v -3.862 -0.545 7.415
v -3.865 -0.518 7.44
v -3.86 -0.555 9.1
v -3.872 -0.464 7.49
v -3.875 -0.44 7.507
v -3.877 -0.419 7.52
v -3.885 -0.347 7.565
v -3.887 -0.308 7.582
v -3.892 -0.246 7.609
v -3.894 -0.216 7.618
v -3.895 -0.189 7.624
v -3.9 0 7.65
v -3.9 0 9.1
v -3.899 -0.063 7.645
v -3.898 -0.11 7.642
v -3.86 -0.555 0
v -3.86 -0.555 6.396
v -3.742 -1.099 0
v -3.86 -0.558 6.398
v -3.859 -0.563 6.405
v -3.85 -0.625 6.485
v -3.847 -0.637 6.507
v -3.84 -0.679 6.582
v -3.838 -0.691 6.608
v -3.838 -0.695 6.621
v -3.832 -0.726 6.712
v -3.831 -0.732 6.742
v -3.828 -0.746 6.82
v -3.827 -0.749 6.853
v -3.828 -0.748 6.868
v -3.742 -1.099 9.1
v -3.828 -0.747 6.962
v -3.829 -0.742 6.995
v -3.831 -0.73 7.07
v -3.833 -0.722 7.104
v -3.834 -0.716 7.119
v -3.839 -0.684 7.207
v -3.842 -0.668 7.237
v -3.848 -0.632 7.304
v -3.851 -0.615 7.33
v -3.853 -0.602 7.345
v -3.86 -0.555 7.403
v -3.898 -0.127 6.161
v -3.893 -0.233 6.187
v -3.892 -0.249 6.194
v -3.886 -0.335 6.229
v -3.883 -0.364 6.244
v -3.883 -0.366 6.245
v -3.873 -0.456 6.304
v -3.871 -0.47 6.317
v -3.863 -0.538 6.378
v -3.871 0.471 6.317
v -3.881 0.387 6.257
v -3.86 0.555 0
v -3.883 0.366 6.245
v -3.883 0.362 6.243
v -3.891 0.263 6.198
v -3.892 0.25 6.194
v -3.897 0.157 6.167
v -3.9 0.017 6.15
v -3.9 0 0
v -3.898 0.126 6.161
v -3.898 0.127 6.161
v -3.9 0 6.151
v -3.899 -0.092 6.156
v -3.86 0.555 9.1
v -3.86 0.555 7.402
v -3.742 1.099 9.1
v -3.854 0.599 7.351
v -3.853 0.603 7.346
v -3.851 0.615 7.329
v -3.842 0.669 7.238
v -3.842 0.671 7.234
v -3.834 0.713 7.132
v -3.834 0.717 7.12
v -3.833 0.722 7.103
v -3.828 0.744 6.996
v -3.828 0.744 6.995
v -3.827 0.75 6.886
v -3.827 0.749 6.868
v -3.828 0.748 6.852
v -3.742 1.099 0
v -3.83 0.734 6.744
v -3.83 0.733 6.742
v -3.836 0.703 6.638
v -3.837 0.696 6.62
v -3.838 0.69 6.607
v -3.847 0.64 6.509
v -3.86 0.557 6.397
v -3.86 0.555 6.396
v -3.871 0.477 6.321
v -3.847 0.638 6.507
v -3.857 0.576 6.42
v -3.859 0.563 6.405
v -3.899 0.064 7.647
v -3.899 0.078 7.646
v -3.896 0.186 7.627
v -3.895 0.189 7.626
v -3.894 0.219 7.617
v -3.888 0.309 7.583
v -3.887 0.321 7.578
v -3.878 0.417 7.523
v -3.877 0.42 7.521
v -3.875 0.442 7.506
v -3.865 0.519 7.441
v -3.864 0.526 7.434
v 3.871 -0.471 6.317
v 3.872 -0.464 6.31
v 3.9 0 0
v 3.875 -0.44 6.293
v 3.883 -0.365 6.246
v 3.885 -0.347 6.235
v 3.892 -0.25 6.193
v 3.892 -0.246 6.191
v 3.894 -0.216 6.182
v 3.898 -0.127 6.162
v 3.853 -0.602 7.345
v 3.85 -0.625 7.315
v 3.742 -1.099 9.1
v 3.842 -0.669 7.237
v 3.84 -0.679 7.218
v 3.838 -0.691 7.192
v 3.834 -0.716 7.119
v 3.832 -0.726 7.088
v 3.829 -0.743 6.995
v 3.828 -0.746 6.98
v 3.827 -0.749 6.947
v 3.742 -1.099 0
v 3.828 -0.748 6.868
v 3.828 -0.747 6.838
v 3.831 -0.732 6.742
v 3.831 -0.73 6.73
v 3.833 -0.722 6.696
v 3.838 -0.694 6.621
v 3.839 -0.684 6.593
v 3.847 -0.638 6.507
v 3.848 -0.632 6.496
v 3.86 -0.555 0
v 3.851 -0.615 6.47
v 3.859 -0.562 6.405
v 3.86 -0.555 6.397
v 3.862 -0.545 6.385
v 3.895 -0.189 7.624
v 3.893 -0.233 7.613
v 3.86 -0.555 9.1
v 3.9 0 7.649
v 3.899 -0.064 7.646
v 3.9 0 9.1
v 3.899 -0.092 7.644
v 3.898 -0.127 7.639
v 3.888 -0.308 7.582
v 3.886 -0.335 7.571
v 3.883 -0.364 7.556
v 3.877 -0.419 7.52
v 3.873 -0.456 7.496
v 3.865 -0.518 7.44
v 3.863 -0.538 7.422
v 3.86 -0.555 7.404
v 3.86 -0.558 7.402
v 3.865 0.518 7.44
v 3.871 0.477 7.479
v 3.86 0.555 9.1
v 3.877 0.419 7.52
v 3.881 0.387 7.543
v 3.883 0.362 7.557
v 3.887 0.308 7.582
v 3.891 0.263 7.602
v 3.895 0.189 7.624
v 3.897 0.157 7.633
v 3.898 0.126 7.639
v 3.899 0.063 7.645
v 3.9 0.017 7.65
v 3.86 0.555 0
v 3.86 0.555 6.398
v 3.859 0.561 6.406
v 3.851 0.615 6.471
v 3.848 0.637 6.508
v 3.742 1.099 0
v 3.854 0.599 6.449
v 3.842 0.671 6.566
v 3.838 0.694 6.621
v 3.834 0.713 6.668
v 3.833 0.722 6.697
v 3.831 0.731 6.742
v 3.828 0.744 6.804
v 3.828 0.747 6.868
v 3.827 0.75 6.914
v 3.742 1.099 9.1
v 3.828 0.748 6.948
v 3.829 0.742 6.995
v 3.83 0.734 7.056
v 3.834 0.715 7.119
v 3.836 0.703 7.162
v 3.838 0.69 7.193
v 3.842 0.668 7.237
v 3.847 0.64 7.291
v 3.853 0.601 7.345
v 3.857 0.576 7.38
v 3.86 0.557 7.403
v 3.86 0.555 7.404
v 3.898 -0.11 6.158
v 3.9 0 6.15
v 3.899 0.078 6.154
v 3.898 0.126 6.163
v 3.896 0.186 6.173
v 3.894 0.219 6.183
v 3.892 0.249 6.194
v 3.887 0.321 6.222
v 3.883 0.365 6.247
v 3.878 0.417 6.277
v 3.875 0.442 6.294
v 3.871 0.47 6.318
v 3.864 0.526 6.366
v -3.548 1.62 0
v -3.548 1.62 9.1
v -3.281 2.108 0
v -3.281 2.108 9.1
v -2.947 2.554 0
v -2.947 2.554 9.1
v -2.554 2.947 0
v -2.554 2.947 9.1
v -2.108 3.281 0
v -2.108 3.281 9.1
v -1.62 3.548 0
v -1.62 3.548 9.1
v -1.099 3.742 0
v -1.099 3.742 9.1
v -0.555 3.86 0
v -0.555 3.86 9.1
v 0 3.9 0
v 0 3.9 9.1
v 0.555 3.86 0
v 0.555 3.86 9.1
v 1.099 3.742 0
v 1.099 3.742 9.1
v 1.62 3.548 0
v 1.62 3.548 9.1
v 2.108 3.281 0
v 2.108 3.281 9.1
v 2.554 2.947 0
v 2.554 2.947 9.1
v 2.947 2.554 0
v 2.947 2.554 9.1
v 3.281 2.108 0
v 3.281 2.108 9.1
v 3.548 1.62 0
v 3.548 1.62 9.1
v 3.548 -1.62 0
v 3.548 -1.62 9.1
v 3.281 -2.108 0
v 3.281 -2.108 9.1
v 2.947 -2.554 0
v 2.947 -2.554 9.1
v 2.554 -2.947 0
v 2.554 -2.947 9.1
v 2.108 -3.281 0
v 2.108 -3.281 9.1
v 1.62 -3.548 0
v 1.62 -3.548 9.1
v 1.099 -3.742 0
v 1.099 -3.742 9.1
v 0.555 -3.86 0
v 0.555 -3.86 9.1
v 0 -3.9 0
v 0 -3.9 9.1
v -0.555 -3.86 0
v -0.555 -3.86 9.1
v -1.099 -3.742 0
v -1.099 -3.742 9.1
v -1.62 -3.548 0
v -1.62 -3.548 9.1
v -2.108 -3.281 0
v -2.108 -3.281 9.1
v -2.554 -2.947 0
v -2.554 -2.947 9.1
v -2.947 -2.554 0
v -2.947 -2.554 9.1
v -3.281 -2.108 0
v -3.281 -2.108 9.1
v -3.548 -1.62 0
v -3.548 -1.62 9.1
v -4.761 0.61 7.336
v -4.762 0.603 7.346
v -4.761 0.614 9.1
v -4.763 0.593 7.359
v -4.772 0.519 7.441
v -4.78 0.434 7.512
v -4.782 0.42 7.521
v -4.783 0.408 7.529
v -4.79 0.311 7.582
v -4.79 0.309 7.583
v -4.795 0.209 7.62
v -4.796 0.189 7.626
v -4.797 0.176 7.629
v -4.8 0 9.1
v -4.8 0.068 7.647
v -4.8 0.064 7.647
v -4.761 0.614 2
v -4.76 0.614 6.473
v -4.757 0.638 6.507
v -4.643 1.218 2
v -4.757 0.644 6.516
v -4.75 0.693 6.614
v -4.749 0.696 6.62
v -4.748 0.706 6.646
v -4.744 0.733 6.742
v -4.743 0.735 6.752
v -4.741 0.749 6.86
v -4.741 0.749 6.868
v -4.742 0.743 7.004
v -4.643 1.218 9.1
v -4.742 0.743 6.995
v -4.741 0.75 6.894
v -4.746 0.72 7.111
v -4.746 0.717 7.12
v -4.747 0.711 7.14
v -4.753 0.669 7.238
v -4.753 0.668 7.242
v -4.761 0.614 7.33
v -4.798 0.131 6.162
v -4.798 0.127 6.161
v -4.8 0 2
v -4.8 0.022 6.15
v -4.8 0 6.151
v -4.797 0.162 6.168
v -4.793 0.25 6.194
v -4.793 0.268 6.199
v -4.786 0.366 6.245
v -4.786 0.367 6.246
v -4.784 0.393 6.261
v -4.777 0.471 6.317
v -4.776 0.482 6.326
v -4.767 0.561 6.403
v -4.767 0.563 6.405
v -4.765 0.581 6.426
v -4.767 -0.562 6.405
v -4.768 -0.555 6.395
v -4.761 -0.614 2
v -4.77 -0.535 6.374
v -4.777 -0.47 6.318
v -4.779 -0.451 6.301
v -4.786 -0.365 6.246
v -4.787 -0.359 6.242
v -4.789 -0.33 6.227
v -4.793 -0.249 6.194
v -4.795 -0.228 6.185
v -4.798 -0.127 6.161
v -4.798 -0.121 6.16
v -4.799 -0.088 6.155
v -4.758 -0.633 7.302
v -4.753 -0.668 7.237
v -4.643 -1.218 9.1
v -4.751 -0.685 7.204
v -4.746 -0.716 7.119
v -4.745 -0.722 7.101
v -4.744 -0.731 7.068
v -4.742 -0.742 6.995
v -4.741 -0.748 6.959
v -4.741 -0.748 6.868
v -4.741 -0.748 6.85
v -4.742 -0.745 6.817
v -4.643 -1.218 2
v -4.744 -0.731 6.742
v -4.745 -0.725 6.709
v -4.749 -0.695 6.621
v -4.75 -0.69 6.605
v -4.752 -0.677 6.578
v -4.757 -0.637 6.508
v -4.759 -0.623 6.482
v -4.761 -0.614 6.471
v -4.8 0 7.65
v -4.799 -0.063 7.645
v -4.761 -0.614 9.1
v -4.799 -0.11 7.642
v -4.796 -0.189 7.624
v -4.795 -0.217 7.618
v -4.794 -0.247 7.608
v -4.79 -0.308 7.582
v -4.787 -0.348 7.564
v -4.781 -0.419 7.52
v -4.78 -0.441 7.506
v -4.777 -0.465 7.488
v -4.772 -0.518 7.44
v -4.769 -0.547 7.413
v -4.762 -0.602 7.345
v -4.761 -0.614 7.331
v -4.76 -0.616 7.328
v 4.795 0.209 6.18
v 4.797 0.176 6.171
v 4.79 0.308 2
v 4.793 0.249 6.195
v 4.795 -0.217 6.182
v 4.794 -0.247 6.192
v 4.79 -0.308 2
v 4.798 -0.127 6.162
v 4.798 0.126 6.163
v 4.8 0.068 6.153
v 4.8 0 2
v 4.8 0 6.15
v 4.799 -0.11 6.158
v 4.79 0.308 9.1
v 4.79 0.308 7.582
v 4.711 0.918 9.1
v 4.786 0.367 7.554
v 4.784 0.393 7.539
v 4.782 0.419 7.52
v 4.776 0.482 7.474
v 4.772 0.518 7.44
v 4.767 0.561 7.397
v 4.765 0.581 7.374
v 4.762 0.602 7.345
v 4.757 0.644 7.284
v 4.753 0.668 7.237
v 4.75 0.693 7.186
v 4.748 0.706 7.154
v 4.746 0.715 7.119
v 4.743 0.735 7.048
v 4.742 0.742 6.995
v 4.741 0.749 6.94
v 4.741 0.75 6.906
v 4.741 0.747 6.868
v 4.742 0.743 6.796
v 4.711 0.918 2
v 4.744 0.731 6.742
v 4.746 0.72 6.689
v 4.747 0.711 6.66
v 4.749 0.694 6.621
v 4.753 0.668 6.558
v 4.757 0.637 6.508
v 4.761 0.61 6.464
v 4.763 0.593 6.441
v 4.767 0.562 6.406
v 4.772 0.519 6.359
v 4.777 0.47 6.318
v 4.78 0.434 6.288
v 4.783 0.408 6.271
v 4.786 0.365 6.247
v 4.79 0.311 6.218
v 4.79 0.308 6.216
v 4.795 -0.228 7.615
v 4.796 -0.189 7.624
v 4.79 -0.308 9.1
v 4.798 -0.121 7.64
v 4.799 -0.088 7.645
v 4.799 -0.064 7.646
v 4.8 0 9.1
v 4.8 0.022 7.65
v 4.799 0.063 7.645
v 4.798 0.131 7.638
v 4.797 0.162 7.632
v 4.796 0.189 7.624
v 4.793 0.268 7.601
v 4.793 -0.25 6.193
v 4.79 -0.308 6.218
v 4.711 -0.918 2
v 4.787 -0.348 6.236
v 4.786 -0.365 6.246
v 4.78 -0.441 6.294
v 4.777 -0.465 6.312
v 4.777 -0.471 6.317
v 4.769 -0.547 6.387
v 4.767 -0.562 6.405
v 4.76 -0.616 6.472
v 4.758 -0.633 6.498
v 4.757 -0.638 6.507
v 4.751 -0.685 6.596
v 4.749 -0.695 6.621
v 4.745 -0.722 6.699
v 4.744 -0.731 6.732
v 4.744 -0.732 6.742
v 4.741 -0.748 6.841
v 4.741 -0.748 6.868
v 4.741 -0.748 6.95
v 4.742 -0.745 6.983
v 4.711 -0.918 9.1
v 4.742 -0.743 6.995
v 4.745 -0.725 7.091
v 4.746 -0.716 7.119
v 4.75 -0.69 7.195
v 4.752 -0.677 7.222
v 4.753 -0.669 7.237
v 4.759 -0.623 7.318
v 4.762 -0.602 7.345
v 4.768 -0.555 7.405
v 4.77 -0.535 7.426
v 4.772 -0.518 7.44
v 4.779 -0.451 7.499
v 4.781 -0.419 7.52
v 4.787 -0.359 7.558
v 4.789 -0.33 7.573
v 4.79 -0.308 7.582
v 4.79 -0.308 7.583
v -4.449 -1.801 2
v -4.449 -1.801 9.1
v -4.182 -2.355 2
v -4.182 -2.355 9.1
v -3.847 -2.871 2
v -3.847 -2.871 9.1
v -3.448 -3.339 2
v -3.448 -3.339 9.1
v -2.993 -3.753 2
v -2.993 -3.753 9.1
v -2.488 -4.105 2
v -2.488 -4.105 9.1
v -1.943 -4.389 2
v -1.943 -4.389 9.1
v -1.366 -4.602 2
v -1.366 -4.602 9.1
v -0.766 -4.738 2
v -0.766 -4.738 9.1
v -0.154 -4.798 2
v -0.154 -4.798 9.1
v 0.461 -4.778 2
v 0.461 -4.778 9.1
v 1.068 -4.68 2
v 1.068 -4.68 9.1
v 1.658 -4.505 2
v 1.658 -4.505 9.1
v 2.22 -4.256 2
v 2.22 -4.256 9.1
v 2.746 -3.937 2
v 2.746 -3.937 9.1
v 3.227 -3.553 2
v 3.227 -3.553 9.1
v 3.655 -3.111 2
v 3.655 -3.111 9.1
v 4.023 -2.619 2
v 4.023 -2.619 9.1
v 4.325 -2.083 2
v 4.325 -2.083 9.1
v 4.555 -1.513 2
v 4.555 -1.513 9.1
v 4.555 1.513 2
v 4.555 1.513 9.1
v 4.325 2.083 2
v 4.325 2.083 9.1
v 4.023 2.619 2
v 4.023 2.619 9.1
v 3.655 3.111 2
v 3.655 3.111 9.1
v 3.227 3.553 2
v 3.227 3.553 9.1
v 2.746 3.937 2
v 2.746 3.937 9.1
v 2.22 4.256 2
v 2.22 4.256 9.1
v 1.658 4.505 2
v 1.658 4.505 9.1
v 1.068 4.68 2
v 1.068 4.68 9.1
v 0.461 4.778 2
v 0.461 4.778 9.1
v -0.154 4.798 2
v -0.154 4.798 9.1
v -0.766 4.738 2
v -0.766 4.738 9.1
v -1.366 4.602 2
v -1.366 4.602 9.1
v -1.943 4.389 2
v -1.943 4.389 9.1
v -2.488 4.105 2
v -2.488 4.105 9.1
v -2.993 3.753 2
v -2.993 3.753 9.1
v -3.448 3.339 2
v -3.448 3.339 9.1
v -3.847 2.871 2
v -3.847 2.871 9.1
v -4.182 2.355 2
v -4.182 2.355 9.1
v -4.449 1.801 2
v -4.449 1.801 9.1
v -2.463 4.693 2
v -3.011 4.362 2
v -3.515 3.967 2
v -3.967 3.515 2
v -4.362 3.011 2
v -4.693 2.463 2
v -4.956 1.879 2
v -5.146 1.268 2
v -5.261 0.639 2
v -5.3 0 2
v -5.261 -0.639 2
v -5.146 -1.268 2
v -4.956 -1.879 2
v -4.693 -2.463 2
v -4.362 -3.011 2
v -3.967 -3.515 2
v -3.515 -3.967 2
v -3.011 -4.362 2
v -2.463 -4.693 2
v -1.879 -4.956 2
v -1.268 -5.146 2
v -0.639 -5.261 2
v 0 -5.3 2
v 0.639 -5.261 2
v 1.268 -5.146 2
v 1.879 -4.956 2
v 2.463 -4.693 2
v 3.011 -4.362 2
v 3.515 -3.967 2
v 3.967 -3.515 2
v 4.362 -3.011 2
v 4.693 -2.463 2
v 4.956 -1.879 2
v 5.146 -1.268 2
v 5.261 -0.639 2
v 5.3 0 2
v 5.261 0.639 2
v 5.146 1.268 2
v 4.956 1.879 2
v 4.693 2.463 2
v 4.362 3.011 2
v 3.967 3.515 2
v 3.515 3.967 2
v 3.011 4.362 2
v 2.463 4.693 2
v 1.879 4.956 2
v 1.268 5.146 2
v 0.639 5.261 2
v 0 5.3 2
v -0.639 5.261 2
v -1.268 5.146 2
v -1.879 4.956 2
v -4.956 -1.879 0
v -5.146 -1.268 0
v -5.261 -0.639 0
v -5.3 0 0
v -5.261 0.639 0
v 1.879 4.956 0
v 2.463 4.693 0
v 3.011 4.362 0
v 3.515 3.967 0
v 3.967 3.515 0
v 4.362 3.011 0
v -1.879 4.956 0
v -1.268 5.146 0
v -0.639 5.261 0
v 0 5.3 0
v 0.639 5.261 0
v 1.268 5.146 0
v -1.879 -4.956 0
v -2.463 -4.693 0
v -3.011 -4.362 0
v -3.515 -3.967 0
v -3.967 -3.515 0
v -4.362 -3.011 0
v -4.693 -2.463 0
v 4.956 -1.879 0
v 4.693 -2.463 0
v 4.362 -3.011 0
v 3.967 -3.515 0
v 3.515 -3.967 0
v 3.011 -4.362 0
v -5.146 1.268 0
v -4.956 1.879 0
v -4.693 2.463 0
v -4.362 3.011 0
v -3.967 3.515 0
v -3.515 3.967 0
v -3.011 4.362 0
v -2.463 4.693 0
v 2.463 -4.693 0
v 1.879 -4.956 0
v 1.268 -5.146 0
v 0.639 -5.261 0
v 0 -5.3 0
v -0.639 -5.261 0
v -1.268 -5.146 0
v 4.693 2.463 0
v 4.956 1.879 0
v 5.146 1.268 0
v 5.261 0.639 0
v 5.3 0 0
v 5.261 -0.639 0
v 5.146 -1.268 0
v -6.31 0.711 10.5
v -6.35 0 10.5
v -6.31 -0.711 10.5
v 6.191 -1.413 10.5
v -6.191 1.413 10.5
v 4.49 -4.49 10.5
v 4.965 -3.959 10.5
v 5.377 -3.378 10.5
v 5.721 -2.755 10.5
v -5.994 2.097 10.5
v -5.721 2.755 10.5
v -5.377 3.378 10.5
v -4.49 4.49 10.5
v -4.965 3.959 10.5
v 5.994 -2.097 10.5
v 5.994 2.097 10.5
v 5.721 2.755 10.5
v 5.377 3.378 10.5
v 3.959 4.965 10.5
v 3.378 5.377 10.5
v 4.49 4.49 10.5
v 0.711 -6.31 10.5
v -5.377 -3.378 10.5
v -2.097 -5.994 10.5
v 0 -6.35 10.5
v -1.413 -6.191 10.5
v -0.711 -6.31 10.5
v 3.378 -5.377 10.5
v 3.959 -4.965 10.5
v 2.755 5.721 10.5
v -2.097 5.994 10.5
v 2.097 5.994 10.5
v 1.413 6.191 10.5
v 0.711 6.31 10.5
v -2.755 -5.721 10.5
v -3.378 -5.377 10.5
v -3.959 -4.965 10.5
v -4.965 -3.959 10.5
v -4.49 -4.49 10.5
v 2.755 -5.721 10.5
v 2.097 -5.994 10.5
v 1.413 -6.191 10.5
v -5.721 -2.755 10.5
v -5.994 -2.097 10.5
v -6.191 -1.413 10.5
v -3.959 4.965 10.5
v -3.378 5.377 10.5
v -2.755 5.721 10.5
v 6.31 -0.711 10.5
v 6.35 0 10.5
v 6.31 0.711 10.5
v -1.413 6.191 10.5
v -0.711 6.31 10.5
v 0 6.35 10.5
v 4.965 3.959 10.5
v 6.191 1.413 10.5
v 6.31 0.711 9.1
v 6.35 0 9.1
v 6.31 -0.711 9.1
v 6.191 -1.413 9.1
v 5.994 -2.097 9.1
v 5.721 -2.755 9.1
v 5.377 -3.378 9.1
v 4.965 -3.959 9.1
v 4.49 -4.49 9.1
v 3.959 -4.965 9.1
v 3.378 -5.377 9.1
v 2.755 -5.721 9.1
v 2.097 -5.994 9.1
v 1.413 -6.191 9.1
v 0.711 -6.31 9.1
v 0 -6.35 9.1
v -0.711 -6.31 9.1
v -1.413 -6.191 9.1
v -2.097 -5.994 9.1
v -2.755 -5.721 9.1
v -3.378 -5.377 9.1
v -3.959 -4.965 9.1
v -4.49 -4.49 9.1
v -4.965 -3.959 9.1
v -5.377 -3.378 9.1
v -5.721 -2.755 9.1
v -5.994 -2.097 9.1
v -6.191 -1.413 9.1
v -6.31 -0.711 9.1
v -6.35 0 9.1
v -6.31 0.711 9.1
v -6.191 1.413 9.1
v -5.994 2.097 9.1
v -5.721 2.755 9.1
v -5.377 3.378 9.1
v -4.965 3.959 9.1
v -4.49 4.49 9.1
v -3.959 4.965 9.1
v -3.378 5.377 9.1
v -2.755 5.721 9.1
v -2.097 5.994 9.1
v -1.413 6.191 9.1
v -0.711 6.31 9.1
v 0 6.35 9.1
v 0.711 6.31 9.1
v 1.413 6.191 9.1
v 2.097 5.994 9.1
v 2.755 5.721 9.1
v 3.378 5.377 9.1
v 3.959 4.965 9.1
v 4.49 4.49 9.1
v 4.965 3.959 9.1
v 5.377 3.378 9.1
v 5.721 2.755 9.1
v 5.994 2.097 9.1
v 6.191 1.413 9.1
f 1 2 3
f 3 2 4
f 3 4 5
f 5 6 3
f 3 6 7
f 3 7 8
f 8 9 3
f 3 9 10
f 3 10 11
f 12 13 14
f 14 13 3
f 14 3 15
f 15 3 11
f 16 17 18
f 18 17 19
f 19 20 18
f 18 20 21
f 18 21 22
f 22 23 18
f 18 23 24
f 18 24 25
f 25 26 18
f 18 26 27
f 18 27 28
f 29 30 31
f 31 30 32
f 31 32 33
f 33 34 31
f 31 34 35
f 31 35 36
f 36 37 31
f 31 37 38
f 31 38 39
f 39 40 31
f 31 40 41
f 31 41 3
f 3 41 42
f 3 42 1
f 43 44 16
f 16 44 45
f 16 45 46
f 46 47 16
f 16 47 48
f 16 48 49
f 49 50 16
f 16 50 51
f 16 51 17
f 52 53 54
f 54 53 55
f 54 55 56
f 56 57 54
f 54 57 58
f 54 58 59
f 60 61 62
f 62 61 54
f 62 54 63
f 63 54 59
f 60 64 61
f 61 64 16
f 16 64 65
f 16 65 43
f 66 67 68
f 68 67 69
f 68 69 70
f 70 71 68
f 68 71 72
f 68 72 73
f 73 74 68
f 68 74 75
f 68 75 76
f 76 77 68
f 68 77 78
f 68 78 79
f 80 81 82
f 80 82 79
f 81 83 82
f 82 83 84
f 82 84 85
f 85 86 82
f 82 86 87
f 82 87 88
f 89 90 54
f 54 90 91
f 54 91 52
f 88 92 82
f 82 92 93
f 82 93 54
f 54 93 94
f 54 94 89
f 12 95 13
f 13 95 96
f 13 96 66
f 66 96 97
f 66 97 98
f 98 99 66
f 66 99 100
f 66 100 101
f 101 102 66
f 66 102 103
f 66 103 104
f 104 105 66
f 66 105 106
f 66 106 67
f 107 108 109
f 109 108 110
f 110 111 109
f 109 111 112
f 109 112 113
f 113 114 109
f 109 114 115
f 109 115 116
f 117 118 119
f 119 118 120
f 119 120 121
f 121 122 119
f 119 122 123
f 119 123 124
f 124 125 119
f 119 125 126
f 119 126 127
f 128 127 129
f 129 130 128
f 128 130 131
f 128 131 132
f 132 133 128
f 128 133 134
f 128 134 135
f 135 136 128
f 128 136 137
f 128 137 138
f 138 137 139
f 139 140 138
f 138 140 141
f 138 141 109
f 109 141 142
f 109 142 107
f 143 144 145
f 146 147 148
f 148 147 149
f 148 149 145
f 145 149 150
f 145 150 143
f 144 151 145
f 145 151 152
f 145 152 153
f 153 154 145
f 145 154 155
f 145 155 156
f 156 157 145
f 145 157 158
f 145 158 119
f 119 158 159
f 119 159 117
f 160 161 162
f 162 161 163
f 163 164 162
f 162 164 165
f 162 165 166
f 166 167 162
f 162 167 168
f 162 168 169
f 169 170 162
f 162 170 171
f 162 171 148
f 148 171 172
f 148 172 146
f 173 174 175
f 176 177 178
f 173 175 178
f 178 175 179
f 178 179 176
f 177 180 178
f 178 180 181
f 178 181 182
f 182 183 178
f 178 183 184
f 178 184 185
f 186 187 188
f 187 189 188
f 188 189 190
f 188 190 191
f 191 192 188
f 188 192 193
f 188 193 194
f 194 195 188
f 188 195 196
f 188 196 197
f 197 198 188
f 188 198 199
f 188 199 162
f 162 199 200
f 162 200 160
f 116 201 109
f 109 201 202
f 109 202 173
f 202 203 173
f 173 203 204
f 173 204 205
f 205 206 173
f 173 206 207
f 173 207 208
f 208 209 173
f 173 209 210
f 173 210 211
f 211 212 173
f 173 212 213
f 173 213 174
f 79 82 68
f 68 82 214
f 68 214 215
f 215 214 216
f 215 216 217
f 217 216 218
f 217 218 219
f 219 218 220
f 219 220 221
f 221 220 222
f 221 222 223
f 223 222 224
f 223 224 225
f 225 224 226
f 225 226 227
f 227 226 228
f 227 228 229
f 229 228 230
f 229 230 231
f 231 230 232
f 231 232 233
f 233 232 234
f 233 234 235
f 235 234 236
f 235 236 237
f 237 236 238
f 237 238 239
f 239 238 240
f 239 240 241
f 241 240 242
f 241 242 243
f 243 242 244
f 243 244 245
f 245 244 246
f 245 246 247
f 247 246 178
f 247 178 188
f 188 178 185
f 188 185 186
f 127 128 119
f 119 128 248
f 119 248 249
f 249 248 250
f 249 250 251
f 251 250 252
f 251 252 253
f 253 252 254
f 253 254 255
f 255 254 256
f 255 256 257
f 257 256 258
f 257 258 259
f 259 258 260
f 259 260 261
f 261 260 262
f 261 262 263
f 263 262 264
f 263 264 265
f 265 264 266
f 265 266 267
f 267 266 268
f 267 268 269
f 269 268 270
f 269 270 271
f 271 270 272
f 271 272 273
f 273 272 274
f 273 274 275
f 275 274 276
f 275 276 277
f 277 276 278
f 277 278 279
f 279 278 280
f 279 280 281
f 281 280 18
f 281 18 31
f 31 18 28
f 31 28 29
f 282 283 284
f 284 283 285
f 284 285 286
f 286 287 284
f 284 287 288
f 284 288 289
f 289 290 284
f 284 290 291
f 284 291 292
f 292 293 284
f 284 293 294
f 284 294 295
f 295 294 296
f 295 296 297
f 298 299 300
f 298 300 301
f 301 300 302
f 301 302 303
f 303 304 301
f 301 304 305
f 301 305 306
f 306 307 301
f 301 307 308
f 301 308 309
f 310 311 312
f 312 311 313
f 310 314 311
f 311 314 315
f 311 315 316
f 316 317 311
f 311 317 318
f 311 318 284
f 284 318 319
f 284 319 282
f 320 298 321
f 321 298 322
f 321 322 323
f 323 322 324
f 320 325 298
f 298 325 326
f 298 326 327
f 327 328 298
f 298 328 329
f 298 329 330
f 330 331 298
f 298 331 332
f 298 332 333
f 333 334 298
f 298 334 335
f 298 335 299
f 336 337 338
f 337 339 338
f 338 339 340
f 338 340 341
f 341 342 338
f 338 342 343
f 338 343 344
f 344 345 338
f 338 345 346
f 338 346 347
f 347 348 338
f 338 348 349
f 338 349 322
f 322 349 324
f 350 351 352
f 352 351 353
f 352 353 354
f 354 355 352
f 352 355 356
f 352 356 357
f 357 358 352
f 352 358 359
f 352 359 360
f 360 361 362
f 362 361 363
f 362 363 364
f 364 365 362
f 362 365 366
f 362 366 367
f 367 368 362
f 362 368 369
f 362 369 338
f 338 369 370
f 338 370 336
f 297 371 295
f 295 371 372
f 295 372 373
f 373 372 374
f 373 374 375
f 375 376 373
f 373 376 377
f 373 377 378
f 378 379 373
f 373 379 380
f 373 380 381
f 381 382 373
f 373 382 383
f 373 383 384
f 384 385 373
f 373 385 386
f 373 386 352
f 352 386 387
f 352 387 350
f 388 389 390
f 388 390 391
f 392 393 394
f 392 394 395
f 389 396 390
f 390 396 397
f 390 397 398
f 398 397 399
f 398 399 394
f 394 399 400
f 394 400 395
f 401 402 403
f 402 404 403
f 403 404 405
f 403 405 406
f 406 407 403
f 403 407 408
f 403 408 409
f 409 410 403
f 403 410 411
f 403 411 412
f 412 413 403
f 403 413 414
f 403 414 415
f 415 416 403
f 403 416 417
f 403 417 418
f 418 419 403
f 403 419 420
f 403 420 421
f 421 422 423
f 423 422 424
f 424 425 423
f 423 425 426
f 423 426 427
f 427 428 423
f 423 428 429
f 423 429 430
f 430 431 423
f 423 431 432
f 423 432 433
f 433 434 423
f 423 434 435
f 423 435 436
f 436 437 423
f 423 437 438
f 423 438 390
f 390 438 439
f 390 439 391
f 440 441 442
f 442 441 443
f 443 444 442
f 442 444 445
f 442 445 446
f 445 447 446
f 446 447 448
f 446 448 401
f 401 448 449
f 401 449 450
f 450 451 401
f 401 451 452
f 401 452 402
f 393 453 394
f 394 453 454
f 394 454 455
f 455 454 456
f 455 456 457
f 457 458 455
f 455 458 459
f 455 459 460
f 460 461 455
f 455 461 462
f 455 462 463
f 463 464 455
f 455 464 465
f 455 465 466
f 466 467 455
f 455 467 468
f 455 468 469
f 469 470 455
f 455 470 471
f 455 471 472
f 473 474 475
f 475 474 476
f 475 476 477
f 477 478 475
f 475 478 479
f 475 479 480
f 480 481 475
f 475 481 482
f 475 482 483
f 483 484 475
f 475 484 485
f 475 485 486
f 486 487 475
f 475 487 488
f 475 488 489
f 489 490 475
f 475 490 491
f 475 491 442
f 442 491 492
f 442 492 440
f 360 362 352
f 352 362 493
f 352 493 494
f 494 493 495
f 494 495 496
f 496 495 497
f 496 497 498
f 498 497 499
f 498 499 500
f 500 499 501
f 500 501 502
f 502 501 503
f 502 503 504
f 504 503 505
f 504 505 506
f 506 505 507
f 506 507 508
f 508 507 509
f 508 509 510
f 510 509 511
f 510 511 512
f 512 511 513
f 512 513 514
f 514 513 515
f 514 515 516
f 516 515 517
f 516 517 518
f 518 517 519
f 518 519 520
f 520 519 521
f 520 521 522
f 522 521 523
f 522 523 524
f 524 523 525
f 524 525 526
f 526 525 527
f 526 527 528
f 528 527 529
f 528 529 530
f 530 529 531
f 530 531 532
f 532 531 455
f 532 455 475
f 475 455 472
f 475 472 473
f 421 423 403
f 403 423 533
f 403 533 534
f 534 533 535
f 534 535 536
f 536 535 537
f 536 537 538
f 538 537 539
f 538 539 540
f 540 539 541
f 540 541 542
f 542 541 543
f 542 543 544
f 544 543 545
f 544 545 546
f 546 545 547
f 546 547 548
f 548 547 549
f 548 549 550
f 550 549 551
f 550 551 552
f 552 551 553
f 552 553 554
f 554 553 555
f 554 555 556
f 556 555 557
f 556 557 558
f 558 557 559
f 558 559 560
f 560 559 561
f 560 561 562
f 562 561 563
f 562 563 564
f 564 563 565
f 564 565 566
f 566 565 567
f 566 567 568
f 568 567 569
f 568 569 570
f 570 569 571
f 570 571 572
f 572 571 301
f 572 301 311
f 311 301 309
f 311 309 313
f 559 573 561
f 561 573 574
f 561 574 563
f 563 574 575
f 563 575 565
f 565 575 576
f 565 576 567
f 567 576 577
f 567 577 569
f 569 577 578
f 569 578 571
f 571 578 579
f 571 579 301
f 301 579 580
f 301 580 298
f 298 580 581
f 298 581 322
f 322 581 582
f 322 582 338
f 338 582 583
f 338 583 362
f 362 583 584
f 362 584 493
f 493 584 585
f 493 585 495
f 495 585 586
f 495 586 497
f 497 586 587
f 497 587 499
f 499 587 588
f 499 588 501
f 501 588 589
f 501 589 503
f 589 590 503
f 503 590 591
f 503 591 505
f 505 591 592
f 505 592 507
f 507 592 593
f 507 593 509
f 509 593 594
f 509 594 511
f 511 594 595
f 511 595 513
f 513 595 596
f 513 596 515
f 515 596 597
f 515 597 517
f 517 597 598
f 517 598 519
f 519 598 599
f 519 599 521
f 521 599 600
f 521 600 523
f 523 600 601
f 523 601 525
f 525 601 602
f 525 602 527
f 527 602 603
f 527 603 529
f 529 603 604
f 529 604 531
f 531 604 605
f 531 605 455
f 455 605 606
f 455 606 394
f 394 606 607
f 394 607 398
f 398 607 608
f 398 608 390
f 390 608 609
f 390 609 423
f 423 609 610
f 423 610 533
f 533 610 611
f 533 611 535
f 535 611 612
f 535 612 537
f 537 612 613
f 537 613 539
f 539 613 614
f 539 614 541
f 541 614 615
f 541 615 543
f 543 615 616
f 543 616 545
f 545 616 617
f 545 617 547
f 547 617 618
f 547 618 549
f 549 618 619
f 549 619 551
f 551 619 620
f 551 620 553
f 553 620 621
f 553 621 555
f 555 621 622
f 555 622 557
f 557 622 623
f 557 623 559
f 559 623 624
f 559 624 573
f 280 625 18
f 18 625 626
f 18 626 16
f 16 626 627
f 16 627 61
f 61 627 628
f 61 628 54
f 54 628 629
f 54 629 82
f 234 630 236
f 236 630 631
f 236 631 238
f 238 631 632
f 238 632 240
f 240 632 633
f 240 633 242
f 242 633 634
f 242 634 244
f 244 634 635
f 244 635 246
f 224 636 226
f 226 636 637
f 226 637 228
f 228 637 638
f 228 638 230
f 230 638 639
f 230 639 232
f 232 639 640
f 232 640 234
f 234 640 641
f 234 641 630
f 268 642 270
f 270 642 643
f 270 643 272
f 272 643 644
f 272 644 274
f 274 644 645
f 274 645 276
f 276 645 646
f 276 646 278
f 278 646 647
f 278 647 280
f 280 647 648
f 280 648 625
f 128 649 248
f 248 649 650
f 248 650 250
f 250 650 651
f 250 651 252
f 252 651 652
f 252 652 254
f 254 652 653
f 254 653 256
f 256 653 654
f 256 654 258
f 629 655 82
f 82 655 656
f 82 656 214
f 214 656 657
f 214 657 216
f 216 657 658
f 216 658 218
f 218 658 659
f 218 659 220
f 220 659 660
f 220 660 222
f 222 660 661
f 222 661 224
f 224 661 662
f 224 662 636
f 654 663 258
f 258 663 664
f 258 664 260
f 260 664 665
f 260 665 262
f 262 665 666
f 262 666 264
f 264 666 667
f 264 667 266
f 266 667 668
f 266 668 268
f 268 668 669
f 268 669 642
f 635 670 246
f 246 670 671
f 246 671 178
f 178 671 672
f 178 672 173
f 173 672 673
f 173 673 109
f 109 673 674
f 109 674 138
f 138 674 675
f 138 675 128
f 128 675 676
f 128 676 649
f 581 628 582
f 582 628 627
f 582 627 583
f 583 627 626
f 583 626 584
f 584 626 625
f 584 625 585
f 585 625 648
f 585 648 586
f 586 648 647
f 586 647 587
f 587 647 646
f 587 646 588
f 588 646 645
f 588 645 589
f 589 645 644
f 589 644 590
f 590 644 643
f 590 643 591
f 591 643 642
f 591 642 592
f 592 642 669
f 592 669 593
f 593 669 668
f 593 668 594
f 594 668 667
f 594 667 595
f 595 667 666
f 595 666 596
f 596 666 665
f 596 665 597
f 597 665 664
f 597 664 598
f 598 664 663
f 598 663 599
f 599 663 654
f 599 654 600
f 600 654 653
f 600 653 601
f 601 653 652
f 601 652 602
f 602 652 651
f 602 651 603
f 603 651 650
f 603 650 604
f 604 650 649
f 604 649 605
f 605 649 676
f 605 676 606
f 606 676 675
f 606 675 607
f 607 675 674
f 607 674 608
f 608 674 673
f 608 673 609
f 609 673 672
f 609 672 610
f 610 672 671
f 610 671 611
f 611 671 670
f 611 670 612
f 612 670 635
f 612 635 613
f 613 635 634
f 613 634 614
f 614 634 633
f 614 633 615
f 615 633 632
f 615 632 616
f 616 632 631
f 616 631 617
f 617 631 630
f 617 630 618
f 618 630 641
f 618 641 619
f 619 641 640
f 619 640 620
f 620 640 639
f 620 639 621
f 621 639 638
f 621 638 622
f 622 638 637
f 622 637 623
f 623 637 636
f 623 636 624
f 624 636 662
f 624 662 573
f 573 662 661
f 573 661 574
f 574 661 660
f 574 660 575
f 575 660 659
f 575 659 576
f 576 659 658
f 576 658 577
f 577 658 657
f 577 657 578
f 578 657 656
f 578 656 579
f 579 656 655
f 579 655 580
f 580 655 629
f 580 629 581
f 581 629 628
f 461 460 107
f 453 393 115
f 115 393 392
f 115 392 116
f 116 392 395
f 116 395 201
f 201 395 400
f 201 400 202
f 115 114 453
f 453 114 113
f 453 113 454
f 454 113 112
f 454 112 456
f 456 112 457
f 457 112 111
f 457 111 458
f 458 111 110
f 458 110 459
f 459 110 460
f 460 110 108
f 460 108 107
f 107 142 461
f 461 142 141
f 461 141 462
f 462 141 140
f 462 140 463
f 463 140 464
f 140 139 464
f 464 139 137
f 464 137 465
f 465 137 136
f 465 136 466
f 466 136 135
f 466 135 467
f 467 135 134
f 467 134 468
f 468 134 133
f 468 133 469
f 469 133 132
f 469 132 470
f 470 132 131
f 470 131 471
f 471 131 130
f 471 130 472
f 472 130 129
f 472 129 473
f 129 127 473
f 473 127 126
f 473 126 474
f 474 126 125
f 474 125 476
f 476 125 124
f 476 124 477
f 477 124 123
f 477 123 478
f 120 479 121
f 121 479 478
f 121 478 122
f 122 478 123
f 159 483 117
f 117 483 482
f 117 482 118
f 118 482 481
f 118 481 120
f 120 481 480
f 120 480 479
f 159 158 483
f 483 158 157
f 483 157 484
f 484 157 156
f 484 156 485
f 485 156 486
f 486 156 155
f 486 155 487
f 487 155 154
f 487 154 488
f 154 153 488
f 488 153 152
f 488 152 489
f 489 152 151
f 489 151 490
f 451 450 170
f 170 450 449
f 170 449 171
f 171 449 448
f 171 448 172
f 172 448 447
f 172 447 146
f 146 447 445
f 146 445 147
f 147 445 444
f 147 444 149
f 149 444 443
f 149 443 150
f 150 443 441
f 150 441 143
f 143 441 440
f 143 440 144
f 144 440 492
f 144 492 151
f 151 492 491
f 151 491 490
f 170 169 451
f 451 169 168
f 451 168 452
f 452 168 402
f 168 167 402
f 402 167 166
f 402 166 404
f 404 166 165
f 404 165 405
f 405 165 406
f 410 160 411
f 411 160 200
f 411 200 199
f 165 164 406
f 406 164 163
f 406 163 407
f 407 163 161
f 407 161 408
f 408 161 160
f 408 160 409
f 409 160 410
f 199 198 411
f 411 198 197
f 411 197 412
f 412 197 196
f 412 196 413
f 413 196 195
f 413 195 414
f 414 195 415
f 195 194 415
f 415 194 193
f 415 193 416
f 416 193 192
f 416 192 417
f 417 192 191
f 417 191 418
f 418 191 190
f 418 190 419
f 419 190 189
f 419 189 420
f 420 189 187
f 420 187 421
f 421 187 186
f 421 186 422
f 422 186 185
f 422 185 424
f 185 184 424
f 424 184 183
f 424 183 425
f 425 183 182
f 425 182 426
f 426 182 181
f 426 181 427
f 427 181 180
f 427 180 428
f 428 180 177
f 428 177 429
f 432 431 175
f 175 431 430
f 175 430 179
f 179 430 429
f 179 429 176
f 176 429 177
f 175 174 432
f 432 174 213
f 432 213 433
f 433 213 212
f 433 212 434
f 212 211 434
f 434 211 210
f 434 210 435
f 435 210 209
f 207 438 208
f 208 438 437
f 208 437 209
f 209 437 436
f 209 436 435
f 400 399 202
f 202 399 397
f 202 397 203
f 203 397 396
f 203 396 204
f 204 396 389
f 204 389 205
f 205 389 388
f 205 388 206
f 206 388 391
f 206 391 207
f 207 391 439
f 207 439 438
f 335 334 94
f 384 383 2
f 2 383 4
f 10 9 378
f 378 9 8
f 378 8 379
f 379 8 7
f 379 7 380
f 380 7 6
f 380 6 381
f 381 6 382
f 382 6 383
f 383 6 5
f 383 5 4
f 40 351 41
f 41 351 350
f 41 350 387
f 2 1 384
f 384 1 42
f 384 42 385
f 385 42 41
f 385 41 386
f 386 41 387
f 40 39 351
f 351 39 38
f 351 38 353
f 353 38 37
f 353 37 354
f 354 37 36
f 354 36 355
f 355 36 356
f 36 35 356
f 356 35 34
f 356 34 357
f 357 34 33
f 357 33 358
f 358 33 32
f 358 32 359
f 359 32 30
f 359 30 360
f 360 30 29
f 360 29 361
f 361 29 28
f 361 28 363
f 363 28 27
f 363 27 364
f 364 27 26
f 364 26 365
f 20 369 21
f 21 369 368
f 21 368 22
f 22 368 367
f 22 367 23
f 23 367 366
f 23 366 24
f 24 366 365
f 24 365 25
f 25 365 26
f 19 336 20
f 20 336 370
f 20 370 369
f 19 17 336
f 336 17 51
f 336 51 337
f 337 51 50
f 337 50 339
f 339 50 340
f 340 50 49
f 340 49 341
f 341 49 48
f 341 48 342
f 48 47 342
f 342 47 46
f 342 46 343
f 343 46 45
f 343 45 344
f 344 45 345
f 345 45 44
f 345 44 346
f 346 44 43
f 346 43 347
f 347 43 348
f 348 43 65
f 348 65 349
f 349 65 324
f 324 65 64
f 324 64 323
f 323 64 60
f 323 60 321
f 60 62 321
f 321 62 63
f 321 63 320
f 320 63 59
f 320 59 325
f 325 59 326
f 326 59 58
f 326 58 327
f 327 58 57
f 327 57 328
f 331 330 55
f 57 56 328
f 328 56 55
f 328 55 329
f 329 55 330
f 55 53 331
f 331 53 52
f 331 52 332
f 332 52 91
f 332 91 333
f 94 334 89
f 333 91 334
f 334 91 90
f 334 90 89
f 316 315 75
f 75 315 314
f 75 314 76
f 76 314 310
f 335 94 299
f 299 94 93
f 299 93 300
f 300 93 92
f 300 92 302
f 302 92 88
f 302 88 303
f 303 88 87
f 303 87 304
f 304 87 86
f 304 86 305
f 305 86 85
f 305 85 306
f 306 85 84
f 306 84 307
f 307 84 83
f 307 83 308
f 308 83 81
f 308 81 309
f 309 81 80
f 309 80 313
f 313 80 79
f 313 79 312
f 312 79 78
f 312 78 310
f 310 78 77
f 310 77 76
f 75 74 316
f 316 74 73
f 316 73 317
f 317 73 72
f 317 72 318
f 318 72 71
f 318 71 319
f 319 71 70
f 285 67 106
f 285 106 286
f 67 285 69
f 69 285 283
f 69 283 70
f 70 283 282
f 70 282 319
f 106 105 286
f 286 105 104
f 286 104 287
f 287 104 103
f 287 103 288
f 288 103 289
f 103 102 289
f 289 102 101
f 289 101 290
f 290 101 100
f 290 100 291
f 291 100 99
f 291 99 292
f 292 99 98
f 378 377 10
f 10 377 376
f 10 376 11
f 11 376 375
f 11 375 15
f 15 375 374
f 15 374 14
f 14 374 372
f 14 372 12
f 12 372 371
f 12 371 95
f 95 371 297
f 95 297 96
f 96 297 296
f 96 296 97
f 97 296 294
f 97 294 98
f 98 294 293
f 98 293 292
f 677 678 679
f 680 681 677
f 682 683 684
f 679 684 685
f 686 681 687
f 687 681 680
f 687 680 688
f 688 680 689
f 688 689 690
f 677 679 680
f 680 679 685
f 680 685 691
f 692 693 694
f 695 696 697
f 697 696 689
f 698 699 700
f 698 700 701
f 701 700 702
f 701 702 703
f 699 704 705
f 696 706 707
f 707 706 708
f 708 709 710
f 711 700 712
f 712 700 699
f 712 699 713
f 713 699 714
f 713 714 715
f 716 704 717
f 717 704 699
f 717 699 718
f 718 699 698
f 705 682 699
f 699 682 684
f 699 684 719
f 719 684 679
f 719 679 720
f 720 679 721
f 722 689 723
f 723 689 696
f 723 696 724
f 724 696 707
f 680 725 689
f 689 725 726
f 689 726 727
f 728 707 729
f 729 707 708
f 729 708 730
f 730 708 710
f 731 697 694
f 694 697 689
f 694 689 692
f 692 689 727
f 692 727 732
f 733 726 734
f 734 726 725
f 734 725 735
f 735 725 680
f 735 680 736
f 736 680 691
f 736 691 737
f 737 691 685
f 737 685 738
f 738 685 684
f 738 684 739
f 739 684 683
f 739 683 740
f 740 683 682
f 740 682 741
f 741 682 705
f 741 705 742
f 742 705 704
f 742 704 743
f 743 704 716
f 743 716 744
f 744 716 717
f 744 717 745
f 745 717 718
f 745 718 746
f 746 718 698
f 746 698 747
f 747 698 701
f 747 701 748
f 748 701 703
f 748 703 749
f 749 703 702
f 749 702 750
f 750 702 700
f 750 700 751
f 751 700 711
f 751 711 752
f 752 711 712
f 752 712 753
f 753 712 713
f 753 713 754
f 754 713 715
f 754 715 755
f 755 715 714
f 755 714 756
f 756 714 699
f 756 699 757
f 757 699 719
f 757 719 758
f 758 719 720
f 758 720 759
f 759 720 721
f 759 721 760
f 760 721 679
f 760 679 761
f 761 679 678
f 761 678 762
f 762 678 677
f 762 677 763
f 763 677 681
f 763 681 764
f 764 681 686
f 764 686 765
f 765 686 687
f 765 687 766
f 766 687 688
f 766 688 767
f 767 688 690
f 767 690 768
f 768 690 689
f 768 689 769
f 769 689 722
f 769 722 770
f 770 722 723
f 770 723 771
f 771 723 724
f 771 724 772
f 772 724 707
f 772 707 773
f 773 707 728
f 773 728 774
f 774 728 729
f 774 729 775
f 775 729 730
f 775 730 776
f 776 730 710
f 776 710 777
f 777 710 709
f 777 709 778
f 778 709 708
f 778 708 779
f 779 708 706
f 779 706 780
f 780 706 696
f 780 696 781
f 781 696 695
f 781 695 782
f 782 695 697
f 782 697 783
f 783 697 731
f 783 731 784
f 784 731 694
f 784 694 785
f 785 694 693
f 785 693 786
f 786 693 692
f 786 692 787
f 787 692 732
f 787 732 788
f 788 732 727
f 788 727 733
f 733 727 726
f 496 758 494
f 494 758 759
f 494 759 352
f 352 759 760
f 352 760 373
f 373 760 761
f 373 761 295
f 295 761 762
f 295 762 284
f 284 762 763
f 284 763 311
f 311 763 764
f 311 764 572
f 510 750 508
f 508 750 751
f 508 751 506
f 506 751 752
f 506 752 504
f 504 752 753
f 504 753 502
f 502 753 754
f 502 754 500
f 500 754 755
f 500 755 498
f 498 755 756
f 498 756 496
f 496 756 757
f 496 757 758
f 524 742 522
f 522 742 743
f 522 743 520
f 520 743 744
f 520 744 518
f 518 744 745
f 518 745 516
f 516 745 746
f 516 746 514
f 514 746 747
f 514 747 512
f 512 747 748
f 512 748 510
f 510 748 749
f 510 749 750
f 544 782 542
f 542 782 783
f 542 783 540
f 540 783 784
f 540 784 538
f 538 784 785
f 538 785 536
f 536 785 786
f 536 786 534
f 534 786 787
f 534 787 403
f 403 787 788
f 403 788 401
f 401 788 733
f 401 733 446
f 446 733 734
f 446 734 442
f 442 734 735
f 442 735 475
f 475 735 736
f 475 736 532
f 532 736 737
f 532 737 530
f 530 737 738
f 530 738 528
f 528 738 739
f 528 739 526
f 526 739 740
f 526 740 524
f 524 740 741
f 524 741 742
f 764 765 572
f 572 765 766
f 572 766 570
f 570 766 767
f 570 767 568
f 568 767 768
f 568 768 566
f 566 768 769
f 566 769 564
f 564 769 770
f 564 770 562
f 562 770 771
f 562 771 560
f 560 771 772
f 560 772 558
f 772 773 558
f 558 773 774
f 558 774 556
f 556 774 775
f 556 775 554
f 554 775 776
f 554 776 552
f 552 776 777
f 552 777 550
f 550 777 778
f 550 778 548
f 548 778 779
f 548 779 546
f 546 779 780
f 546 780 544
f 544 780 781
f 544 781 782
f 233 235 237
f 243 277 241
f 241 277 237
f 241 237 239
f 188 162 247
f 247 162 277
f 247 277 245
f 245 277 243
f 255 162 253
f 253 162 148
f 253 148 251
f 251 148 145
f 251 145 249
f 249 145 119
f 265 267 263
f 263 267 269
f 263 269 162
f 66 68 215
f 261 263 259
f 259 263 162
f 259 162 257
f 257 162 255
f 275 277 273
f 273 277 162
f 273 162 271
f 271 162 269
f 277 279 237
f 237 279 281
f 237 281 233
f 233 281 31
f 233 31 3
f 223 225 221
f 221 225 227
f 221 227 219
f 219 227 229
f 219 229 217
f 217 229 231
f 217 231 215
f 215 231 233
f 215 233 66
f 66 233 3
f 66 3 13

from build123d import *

# Parameters (mm, degrees)
SKETCH1_R           = 5.3
SKETCH1_R_2         = 3.9
EXTRUDE1_DEPTH      = 2
SKETCH2_R           = 4.8
SKETCH2_R_2         = 3.9
EXTRUDE2_DEPTH      = 7.5
SKETCH4_R           = 0.75
EXTRUDE3_DEPTH      = 6.3
EXTRUDE3_DEPTH_BACK = 6.3
SKETCH5_R           = 6.35
EXTRUDE4_DEPTH      = 1
EXTRUDE4_DEPTH_BACK = 0.4


with BuildPart() as part:
    # Sketch1 → Extrude1 (new body)
    with BuildSketch(Plane.XY):
        Circle(SKETCH1_R)
        Circle(SKETCH1_R_2, mode=Mode.SUBTRACT)
    extrude(amount=EXTRUDE1_DEPTH)

    # Sketch2 → Extrude2 (add)
    with BuildSketch(Plane.XY.offset(2)):
        Circle(SKETCH2_R)
        Circle(SKETCH2_R_2, mode=Mode.SUBTRACT)
    extrude(amount=EXTRUDE2_DEPTH)

    # Sketch4 → Extrude3 (cut, two sides)
    with BuildSketch(Plane(origin=(0, 0, 0), x_dir=(0, 0, -1), z_dir=(1, 0, 0))) as extrude3_sk:
        with Locations((-6.9, 0)):
            Circle(SKETCH4_R)
    extrude(amount=EXTRUDE3_DEPTH, mode=Mode.SUBTRACT)
    extrude(extrude3_sk.sketch, amount=-EXTRUDE3_DEPTH_BACK, mode=Mode.SUBTRACT)

    # Sketch5 → Extrude4 (add, two sides)
    with BuildSketch(Plane.XY.offset(9.5)) as extrude4_sk:
        Circle(SKETCH5_R)
    extrude(amount=EXTRUDE4_DEPTH)
    extrude(extrude4_sk.sketch, amount=-EXTRUDE4_DEPTH_BACK)


solid = part.part
